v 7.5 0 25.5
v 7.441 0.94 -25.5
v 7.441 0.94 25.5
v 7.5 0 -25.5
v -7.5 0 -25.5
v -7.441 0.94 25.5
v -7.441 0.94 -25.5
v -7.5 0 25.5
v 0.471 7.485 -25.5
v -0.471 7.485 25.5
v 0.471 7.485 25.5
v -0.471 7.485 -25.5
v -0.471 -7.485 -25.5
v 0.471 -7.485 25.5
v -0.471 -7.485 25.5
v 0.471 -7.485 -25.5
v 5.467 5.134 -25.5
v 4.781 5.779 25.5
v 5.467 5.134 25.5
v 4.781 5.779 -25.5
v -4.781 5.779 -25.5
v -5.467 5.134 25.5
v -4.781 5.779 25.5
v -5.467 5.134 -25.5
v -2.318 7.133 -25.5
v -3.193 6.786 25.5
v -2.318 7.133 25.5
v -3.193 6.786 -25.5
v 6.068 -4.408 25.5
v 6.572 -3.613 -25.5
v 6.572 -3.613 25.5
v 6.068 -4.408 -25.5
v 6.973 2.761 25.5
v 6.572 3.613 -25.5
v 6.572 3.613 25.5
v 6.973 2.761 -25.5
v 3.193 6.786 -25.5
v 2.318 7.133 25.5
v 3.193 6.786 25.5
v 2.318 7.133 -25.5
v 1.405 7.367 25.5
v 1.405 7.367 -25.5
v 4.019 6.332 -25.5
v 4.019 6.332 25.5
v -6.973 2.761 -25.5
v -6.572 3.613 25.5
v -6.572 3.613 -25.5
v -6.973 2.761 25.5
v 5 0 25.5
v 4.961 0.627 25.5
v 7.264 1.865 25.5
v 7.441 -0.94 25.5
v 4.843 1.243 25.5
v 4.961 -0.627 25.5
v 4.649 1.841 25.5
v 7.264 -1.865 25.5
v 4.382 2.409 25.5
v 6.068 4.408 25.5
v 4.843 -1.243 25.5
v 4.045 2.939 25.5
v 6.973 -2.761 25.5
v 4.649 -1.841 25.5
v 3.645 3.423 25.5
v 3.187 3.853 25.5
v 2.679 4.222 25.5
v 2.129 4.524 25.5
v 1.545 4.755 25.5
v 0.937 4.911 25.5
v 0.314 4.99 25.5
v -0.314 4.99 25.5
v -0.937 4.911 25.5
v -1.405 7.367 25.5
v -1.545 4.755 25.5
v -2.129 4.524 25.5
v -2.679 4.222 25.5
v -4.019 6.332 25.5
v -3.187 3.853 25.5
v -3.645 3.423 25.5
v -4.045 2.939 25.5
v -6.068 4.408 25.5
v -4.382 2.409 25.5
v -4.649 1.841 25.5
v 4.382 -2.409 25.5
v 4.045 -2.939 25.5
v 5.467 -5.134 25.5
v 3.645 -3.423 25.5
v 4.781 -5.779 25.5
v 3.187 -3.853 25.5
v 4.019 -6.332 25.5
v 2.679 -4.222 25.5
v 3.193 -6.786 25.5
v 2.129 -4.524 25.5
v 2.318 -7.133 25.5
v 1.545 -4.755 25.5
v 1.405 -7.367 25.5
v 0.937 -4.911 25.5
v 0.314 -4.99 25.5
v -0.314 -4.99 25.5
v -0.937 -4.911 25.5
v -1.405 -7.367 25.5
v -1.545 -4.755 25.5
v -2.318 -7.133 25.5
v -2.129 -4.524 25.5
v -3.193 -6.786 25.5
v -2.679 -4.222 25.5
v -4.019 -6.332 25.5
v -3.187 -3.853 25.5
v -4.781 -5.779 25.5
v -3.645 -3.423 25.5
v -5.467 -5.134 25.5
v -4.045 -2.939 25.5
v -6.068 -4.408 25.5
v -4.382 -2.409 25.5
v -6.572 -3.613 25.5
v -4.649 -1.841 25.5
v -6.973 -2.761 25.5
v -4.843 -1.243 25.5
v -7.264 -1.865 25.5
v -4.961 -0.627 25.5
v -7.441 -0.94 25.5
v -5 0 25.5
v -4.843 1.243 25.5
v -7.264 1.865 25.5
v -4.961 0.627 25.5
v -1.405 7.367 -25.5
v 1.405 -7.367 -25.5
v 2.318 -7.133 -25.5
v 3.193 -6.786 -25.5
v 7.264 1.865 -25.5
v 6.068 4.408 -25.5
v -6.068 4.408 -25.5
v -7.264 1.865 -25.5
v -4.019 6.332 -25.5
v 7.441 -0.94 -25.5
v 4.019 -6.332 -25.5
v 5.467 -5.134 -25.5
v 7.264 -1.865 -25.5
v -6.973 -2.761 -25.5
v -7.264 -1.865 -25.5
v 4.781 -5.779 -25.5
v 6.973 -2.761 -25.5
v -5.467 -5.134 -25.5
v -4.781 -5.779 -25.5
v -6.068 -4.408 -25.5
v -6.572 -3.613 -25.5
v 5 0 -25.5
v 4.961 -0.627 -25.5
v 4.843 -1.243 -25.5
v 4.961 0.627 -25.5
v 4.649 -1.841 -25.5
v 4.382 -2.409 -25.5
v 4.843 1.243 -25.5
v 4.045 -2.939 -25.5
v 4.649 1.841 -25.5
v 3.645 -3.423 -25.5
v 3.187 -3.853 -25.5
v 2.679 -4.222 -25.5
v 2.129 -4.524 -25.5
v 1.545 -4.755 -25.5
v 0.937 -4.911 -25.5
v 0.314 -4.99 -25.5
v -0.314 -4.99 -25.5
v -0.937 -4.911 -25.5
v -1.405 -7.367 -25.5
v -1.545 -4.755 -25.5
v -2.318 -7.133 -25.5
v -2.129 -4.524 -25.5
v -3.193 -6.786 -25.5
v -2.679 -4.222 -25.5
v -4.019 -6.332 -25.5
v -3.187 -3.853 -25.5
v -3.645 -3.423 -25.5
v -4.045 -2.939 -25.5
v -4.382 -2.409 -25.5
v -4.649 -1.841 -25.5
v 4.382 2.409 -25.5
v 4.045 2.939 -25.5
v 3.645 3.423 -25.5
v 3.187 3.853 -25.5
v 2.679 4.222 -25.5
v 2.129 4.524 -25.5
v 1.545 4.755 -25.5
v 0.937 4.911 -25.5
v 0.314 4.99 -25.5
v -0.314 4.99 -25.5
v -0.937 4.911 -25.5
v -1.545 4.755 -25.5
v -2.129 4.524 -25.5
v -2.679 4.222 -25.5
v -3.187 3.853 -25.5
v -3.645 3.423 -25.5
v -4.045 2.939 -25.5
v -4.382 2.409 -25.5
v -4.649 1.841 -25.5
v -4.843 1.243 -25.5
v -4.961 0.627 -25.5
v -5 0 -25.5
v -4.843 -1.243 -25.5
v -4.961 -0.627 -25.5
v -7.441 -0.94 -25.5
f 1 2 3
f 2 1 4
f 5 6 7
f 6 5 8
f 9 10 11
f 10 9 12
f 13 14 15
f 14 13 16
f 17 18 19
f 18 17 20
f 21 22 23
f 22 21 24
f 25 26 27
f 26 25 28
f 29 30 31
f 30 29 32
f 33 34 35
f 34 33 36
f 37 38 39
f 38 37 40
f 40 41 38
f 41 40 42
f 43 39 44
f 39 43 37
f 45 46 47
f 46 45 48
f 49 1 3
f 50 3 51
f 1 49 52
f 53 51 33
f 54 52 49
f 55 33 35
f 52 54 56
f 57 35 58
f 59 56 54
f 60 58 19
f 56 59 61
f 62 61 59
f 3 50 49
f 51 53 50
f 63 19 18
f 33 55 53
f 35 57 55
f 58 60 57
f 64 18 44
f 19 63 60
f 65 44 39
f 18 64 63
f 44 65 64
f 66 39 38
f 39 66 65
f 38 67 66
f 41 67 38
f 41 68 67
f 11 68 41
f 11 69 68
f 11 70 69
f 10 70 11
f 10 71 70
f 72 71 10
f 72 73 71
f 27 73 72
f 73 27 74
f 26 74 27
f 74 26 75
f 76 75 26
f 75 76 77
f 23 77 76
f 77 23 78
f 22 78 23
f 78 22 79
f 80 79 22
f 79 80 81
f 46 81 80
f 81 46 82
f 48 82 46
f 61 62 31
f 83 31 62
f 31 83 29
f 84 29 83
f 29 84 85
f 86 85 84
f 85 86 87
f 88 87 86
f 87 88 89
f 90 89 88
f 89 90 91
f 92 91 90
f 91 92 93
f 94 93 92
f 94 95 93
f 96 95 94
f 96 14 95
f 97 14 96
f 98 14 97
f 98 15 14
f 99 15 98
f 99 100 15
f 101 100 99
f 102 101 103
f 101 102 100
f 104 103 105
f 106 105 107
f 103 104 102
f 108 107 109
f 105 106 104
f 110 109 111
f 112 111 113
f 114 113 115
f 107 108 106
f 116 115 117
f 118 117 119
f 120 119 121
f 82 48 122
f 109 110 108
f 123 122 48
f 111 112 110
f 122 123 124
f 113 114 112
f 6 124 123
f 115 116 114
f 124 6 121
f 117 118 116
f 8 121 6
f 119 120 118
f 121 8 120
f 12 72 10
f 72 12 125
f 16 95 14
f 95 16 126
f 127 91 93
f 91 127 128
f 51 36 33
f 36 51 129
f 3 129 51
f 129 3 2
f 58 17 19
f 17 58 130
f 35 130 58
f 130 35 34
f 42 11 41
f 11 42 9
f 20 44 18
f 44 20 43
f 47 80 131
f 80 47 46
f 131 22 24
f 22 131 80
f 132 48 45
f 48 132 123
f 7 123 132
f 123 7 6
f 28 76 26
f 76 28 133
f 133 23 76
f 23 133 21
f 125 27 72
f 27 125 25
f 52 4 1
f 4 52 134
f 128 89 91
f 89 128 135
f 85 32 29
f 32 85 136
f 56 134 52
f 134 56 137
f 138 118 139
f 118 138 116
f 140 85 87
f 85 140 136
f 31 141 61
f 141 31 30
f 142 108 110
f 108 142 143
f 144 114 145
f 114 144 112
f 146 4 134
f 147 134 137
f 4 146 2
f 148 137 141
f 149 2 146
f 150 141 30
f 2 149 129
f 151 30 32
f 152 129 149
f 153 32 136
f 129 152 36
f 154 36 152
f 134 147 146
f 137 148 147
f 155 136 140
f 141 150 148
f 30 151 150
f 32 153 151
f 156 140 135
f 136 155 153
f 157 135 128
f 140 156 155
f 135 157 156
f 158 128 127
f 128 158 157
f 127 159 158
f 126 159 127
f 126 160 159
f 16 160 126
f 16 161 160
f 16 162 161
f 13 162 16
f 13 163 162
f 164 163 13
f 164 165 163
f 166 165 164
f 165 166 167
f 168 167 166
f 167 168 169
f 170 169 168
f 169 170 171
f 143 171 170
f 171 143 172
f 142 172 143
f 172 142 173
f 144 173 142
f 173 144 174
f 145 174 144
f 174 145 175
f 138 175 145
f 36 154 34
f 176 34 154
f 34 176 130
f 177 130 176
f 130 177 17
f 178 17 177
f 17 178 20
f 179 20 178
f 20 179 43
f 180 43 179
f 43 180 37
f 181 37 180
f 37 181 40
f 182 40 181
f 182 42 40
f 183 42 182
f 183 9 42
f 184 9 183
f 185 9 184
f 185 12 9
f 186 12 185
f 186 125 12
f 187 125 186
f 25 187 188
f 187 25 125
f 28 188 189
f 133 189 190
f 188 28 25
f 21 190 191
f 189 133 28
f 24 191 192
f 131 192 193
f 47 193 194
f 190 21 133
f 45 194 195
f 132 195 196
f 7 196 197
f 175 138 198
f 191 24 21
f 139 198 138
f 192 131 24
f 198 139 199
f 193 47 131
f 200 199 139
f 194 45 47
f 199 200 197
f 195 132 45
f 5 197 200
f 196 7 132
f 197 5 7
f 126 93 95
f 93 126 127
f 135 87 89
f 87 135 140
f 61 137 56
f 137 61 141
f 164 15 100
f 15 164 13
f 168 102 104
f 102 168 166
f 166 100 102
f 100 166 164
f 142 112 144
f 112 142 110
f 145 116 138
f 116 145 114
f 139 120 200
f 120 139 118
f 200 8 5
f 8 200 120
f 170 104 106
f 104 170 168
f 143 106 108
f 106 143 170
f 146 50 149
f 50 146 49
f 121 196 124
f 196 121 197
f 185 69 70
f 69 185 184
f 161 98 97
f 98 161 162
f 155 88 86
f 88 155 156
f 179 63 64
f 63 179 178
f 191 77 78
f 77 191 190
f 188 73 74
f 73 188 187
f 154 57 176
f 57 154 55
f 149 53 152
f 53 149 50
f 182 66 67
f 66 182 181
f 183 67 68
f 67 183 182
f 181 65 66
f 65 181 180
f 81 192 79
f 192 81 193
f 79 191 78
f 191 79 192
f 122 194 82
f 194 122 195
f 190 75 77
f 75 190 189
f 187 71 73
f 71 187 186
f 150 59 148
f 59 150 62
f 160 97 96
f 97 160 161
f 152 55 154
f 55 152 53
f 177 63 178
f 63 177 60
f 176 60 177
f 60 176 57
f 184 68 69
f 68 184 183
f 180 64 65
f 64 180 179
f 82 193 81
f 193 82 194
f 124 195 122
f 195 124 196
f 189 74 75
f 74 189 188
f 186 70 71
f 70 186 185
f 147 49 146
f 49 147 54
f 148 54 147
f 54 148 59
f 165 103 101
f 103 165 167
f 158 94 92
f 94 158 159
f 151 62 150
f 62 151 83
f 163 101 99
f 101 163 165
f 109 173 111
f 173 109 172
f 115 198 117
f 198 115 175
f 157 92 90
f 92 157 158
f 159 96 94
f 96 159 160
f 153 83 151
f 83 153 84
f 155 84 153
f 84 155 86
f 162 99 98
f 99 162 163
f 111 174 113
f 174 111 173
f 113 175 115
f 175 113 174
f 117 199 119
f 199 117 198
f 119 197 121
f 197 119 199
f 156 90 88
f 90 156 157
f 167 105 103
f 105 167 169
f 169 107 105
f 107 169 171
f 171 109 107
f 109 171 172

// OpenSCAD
$fn = 50;


difference() {
	union() {
		translate(v = [0, 0, -25.5000000000]) {
			cylinder(h = 51, r = 7.5000000000);
		}
	}
	union() {
		translate(v = [0, 0, -100.0000000000]) {
			cylinder(h = 200, r = 5);
		}
	}
}
